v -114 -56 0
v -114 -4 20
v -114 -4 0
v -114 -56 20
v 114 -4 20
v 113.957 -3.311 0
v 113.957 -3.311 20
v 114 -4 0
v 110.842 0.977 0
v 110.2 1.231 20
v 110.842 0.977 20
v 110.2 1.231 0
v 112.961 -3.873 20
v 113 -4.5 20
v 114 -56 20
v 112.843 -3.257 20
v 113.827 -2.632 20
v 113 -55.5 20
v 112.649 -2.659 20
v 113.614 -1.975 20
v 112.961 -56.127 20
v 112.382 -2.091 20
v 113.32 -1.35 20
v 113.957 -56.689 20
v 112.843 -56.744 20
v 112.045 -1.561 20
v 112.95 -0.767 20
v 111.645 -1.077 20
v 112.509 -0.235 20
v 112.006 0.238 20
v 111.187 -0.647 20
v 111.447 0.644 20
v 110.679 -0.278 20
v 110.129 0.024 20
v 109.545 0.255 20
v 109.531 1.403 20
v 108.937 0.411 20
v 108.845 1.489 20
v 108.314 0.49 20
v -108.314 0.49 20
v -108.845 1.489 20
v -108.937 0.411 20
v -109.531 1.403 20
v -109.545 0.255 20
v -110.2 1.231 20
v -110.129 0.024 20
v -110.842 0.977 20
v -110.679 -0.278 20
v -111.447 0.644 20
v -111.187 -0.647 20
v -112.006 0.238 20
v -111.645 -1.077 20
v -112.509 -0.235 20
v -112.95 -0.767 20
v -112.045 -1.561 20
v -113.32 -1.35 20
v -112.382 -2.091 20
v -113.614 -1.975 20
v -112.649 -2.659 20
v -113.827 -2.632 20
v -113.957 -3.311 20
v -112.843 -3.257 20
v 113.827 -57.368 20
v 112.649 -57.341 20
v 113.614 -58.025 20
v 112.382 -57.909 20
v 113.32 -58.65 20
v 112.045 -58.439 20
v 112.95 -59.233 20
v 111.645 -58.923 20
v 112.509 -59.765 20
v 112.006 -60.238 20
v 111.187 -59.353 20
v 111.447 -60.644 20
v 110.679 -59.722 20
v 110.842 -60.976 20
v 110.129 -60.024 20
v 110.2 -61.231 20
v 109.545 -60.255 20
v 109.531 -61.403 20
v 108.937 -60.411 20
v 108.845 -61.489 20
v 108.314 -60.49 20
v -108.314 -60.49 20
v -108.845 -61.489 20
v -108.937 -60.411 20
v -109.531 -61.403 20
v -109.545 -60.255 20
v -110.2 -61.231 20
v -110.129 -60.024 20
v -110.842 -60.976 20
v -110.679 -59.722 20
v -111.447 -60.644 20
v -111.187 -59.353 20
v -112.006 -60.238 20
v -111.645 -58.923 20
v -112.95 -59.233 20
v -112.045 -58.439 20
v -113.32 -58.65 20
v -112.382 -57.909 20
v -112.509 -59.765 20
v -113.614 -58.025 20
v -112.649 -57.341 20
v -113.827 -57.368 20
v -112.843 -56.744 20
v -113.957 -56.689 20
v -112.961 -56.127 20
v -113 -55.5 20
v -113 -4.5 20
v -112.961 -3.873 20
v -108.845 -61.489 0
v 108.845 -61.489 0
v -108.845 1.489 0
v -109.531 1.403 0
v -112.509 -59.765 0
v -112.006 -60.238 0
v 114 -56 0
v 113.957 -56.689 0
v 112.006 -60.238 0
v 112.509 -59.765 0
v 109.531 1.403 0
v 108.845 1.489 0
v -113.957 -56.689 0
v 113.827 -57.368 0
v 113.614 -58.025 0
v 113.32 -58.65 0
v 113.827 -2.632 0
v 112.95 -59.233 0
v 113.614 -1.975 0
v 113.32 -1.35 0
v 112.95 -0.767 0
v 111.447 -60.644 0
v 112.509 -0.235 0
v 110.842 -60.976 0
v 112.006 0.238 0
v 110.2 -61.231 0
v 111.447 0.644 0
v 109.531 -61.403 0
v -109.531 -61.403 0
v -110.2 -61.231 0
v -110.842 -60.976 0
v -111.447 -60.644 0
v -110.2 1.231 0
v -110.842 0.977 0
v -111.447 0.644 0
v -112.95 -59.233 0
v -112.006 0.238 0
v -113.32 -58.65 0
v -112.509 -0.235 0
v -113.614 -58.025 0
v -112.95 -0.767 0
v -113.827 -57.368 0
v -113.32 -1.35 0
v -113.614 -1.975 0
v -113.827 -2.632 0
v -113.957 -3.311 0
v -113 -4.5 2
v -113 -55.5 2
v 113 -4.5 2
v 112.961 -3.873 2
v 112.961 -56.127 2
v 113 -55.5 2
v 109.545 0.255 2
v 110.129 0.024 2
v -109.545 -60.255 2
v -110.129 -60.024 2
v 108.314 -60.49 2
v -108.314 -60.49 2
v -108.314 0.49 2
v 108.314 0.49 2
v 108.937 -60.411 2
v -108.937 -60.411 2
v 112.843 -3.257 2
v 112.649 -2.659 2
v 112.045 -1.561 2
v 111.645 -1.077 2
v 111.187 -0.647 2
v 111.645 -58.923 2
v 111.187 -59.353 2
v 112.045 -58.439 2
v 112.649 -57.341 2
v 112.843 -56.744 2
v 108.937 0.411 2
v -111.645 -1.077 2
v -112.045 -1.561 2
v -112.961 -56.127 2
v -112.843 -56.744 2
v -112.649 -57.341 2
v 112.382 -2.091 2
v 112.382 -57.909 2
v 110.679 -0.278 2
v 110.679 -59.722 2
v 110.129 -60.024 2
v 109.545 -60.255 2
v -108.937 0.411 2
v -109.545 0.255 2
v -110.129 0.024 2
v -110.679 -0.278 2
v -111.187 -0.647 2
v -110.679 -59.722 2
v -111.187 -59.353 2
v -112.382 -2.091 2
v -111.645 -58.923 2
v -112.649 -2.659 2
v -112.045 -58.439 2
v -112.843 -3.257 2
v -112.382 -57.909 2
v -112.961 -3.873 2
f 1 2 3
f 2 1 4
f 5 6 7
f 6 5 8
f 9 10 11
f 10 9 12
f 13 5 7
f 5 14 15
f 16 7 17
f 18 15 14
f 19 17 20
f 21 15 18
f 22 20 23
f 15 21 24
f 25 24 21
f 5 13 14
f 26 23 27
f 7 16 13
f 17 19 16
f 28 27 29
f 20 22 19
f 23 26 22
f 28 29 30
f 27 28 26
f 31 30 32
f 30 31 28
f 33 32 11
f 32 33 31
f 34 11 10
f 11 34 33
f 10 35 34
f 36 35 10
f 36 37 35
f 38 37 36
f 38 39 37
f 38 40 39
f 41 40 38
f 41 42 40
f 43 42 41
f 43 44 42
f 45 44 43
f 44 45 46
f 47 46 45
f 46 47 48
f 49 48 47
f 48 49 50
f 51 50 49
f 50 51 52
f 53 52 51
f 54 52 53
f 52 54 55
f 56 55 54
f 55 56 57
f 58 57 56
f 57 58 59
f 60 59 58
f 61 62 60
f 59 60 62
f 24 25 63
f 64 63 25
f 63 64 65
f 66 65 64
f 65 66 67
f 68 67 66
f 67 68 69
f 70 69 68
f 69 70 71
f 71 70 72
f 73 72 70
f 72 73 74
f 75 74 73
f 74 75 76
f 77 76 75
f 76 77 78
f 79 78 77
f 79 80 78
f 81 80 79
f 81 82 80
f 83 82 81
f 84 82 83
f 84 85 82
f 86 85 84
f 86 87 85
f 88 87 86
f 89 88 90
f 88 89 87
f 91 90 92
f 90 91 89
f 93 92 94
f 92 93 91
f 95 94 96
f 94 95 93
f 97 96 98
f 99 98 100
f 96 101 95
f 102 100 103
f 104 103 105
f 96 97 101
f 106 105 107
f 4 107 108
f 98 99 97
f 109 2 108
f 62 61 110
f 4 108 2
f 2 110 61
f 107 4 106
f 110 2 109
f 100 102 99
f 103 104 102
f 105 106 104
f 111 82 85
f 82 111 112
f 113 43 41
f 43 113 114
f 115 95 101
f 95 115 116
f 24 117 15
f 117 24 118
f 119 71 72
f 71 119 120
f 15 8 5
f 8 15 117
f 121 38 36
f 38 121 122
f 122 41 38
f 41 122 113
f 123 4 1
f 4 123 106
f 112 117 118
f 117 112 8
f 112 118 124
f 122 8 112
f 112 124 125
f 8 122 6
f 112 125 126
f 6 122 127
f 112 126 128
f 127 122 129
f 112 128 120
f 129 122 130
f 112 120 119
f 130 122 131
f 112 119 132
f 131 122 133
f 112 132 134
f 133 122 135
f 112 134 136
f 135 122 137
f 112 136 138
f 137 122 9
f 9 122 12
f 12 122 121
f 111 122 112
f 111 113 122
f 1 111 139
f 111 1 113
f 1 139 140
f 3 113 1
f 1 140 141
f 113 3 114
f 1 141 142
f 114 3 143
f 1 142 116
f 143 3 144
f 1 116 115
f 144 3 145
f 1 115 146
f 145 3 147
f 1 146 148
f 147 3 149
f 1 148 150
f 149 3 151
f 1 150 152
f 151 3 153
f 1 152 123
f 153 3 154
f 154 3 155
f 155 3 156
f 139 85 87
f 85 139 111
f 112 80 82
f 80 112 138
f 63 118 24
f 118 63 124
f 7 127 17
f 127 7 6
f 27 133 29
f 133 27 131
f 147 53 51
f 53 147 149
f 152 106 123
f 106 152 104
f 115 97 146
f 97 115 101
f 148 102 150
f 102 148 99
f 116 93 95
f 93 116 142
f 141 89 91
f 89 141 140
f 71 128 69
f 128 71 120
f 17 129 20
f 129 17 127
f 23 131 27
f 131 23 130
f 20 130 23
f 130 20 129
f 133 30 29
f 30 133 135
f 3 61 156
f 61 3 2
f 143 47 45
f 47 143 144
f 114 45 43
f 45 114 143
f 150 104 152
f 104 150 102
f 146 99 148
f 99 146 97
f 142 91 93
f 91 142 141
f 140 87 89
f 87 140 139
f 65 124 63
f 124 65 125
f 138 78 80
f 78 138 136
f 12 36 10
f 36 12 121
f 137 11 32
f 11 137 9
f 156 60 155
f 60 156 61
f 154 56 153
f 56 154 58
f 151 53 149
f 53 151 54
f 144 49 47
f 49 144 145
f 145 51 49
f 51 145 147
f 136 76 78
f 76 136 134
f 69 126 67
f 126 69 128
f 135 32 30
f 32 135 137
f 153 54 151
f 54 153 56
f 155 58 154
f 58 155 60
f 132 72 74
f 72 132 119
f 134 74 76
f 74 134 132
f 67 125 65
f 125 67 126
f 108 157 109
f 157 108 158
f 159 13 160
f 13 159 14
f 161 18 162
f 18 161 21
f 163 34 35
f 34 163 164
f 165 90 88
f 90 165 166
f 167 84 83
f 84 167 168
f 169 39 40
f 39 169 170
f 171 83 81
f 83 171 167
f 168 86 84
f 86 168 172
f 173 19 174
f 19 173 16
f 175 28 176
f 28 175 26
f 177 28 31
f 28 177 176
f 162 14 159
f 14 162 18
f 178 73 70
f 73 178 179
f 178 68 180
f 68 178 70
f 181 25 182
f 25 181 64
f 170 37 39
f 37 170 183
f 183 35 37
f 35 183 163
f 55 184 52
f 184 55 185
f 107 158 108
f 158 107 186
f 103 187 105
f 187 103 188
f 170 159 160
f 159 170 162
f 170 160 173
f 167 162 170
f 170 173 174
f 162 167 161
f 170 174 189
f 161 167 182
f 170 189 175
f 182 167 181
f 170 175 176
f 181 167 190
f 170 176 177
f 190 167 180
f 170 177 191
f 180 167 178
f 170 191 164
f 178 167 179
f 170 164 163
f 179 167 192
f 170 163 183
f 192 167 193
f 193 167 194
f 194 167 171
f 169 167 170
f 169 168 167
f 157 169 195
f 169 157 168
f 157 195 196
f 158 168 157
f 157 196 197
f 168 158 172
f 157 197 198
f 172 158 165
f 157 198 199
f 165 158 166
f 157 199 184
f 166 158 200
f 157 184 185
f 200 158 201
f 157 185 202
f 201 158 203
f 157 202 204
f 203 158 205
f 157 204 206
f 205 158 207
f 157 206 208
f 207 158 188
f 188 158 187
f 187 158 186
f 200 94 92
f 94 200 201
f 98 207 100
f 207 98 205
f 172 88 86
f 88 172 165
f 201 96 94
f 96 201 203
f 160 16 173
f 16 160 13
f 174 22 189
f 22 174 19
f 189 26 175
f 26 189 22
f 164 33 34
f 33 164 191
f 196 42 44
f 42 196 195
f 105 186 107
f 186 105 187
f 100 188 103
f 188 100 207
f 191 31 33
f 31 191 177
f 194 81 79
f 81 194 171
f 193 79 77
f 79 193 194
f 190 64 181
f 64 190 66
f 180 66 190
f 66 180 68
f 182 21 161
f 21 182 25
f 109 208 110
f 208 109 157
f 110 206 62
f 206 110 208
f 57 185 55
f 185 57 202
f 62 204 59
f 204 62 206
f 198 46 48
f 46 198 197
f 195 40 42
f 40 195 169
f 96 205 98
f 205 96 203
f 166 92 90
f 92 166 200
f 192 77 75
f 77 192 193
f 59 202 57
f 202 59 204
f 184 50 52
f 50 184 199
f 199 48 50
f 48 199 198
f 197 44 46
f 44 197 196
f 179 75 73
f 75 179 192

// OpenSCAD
$fn = 50;


difference() {
	union() {
		translate(v = [0, -30.0000000000, 0]) {
			hull() {
				translate(v = [-108.5000000000, 26.0000000000, 0]) {
					cylinder(h = 20, r = 5.5000000000);
				}
				translate(v = [108.5000000000, 26.0000000000, 0]) {
					cylinder(h = 20, r = 5.5000000000);
				}
				translate(v = [-108.5000000000, -26.0000000000, 0]) {
					cylinder(h = 20, r = 5.5000000000);
				}
				translate(v = [108.5000000000, -26.0000000000, 0]) {
					cylinder(h = 20, r = 5.5000000000);
				}
			}
		}
	}
	union() {
		translate(v = [0, -30.0000000000, 2]) {
			hull() {
				translate(v = [-108.0000000000, 25.5000000000, 0]) {
					cylinder(h = 40, r = 5);
				}
				translate(v = [108.0000000000, 25.5000000000, 0]) {
					cylinder(h = 40, r = 5);
				}
				translate(v = [-108.0000000000, -25.5000000000, 0]) {
					cylinder(h = 40, r = 5);
				}
				translate(v = [108.0000000000, -25.5000000000, 0]) {
					cylinder(h = 40, r = 5);
				}
			}
		}
	}
}
